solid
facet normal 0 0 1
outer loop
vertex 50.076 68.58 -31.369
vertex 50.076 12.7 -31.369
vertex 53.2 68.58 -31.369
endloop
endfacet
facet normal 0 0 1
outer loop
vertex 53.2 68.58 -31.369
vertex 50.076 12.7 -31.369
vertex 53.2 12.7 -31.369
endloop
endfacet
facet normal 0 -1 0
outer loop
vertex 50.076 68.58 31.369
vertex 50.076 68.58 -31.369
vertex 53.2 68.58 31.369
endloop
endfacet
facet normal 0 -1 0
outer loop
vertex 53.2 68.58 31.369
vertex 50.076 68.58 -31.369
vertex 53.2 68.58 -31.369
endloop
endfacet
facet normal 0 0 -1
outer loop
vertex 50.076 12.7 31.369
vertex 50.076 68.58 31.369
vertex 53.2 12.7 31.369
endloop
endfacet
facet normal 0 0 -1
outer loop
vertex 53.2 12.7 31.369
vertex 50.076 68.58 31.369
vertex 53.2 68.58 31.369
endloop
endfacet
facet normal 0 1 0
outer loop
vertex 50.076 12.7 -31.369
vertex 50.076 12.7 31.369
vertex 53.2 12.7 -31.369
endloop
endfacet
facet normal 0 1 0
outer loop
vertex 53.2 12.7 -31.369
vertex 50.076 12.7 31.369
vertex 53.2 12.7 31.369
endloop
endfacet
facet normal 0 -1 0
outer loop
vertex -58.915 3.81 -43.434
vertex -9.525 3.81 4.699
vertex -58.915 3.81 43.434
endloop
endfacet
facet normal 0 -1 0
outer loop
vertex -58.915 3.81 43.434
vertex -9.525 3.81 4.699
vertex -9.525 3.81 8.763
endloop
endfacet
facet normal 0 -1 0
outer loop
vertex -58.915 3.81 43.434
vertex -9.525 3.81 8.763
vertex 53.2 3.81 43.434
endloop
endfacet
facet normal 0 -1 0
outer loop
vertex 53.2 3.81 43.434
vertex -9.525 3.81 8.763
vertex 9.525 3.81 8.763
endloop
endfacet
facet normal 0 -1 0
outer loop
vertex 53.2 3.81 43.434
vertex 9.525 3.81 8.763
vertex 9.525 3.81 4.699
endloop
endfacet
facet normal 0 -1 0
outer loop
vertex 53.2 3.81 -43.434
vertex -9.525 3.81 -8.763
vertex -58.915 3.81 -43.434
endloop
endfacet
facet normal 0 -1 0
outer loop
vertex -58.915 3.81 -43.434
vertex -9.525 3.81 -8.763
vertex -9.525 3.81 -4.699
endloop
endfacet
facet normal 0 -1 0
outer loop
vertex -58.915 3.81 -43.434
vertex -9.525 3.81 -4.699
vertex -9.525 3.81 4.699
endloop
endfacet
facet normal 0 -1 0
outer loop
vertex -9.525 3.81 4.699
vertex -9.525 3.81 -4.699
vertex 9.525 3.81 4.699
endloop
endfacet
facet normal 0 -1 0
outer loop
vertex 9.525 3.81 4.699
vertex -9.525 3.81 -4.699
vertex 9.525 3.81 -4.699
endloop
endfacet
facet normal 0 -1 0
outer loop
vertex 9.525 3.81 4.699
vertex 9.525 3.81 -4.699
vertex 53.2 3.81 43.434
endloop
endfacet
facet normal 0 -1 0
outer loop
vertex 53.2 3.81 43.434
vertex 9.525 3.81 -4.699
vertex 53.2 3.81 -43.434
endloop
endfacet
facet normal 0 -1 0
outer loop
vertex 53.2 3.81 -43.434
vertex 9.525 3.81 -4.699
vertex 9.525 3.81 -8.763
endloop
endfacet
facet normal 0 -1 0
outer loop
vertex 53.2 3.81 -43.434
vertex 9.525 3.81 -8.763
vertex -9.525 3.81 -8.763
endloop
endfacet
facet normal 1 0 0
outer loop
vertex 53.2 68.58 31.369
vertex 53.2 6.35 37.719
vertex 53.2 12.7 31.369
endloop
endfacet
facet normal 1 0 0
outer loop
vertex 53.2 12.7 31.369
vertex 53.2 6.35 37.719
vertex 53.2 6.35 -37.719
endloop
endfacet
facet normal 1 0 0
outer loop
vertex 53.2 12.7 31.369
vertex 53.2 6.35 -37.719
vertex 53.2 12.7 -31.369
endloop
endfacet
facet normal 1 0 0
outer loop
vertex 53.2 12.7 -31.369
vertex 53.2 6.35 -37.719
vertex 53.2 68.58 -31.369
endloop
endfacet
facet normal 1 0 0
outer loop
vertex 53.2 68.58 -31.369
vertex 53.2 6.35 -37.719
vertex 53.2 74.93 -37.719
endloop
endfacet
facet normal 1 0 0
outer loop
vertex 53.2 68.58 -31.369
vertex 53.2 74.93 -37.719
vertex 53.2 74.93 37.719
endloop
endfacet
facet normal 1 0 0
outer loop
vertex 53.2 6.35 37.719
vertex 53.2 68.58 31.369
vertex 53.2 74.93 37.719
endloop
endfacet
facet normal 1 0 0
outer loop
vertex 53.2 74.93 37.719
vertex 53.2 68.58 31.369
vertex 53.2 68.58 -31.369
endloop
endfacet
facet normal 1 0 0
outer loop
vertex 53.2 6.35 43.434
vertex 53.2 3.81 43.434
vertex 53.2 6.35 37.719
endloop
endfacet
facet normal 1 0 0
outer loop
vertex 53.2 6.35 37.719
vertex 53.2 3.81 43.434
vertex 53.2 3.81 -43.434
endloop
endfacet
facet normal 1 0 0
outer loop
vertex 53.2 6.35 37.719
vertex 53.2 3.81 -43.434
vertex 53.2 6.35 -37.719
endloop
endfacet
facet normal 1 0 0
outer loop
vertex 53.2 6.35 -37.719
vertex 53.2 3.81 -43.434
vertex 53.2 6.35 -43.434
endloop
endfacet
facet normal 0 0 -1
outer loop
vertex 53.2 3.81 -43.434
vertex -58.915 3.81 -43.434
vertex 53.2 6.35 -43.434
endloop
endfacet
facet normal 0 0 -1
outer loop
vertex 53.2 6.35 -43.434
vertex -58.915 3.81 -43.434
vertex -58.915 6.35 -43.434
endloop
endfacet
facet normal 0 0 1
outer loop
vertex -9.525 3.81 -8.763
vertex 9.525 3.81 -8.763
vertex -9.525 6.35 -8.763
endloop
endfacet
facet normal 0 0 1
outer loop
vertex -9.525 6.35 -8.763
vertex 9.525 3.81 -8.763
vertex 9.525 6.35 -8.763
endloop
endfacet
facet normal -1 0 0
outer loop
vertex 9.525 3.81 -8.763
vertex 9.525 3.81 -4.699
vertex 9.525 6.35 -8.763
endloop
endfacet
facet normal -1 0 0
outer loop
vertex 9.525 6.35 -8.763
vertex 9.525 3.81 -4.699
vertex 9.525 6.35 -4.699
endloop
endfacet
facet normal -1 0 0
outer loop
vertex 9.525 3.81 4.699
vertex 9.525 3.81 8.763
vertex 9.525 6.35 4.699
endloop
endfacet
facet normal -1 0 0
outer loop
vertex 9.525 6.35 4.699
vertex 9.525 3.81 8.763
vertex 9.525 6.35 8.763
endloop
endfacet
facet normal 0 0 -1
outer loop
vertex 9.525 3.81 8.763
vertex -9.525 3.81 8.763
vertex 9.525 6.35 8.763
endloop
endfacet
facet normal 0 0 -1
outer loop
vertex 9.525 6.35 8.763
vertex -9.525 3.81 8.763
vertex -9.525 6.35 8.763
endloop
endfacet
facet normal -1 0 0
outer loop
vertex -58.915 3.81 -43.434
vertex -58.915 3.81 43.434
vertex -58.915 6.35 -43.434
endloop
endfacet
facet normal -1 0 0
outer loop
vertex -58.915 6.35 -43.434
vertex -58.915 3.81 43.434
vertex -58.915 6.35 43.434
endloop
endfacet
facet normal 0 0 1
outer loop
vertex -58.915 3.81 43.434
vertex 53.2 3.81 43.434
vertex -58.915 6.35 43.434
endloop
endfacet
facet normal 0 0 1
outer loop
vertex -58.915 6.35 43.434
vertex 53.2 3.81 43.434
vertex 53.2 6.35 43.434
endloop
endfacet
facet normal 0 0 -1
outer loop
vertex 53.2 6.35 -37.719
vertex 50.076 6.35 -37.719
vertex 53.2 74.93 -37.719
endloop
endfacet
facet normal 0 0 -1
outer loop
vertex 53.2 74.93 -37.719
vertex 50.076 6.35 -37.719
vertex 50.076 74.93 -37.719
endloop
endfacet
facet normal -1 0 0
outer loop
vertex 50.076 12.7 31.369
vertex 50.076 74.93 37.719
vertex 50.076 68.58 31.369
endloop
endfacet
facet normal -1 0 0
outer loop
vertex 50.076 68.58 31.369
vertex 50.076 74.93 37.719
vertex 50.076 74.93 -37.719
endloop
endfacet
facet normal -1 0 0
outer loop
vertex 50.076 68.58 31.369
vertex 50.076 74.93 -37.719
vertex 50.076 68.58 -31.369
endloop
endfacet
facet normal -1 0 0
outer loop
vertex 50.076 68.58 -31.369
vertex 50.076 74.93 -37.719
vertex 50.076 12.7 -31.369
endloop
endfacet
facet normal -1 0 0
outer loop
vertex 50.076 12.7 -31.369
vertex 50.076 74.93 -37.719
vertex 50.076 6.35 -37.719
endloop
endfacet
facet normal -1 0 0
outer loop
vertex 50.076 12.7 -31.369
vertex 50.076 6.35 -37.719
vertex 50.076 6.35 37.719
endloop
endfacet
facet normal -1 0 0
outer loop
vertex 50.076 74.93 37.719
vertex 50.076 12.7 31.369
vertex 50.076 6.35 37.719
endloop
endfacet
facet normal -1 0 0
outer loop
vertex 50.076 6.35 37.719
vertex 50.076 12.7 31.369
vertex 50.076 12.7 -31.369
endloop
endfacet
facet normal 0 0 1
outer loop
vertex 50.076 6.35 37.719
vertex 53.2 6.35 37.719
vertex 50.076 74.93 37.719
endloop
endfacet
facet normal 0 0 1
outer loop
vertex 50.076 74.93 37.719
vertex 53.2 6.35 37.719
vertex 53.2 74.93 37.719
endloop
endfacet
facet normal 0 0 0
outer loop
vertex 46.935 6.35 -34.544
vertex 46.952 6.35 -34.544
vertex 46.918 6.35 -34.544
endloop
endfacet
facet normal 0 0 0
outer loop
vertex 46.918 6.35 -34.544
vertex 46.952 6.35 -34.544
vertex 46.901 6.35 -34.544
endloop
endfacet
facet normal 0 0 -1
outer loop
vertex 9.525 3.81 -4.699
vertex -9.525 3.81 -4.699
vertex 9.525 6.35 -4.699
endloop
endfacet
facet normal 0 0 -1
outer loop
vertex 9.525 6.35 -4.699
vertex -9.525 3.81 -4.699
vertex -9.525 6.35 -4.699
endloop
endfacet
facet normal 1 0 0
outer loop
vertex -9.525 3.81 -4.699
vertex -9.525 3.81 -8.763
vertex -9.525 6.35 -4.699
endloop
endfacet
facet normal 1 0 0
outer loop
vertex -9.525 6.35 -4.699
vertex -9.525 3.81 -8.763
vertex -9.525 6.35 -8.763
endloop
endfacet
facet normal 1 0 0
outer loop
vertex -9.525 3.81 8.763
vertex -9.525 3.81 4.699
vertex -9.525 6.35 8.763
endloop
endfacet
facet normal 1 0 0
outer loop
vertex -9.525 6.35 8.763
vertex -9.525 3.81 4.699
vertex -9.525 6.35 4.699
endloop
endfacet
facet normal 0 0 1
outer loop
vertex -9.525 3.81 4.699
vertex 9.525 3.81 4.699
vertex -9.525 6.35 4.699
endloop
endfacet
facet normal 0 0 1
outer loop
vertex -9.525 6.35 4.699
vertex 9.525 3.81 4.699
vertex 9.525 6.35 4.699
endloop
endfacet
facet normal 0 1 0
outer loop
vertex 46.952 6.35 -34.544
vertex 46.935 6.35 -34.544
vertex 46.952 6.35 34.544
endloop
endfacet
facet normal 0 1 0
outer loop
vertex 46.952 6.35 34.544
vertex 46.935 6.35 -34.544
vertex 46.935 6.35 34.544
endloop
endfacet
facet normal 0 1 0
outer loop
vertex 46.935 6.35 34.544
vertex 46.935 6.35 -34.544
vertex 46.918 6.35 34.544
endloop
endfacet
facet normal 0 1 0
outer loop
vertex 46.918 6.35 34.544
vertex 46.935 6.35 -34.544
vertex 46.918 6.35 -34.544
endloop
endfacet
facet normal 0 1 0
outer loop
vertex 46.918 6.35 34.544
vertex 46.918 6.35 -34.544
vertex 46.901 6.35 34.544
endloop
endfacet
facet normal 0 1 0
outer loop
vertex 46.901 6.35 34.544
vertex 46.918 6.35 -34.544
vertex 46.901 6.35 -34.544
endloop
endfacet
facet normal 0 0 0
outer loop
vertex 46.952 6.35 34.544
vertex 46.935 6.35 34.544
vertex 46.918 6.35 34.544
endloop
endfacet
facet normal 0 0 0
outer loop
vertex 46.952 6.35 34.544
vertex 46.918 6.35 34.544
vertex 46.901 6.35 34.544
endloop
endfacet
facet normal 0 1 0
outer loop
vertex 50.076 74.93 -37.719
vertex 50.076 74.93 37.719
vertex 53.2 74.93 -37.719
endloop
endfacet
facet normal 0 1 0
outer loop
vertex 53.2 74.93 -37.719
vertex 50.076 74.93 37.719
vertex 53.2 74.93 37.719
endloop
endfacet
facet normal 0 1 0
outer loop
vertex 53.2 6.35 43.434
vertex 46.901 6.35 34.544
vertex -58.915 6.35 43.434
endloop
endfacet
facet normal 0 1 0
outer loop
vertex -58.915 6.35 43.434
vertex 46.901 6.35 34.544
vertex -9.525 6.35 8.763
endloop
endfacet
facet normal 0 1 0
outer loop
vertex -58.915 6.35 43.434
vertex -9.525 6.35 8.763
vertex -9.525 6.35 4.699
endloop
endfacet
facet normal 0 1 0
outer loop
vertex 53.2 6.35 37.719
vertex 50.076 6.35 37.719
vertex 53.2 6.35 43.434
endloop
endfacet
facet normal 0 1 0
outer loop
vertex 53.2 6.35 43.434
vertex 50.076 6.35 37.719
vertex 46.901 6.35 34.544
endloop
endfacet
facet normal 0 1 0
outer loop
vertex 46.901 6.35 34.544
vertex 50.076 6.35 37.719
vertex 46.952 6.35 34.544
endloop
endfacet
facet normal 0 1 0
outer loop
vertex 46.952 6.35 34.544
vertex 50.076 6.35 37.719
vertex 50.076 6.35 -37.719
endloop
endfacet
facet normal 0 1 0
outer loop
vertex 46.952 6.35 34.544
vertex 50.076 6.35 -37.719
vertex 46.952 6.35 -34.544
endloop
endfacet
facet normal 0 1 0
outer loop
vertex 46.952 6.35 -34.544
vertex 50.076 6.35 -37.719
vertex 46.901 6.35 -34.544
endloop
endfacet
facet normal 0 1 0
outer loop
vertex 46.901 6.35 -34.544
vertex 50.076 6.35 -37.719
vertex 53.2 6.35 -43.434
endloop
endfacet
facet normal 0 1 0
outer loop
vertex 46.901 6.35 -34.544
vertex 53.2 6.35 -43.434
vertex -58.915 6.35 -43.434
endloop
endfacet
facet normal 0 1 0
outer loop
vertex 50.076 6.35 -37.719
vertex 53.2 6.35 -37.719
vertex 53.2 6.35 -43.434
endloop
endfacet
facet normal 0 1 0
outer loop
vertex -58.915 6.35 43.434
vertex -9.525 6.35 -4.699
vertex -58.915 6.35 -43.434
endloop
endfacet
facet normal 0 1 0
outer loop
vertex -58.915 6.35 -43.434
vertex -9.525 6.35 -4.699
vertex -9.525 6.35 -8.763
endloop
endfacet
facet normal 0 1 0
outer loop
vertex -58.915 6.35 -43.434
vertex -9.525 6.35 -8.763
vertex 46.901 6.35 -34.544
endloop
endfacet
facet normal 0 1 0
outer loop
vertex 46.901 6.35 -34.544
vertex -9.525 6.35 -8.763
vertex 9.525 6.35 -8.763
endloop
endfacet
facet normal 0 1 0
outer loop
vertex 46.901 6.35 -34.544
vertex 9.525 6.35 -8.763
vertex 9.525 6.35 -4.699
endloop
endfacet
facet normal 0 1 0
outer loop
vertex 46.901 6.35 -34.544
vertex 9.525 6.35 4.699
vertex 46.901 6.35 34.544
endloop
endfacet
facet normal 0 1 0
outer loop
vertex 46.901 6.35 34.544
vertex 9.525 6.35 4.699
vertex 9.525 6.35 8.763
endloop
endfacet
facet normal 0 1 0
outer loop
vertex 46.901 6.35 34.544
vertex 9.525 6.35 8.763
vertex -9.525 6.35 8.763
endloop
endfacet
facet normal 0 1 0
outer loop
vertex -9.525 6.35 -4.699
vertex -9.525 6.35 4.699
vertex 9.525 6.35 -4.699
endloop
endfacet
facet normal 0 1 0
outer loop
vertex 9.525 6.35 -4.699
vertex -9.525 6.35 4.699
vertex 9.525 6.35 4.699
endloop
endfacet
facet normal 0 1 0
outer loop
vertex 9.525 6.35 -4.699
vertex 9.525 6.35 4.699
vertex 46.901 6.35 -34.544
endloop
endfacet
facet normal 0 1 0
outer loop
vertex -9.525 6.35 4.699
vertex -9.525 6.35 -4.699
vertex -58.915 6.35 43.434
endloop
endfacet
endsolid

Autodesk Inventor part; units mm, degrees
ref_plane "YZ Plane" through (0, 0, 0) normal (1, 0, 0) x (0, 1, 0)
ref_plane "XZ Plane" through (0, 0, 0) normal (0, 1, 0) x (-1, 0, 0)
ref_plane "XY Plane" through (0, 0, 0) normal (0, 0, 1) x (1, 0, 0)
sketch "Sketch1" plane through (0, 0, 0) normal (0, 1, 0) x (-1, 0, 0)
  line L0 (53.2003, -37.719) -> (-53.2003, -37.719)
  line L1 (-53.2003, -37.719) -> (-53.2003, 37.719)
  line L2 (-53.2003, 37.719) -> (53.2003, 37.719)
  line L3 (53.2003, 37.719) -> (53.2003, -37.719)
  line L4 (53.2003, -37.719) -> (-53.2003, 37.719) construction
  line L5 (-53.2003, -37.719) -> (53.2003, 37.719) construction
  point P0 (0, 0)
  dimension "d0" = 106.4006
  dimension "d1" = 75.438
extrude "Extrusion1" add sketch "Sketch1" along normal blind 6.35
sketch "Sketch2" plane through (0, 6.35, 0) normal (0, 1, 0) x (1, 0, 0)
  line L0 (53.2003, -37.719) -> (53.2003, 37.719) projected
  line L1 (53.2003, -37.719) -> (53.2003, -34.544)
  line L2 (53.2003, -34.544) -> (50.0761, -34.544)
  line L3 (53.2003, 37.719) -> (53.2003, 34.544)
  line L4 (53.2003, 34.544) -> (50.0761, 34.544)
  line L5 (50.0761, 34.544) -> (50.0761, -34.544)
  line L6 (53.2003, -34.544) -> (53.2003, 34.544)
  point P0 (0, 0)
  dimension "d4" = 3.175
  dimension "d5" = 3.1242
  dimension "d6" = 3.175
extrude "Extrusion2" add sketch "Sketch2" along normal blind 68.58
fillet "Fillet1" radius 3.175 1 edges at (50.0761, 6.35, 0)
sketch "Sketch3" plane through (0, 0, 0) normal (0, -1, 0) x (1, 0, 0)
  line L0 (-9.525, 8.763) -> (9.525, 8.763)
  line L1 (9.525, 8.763) -> (9.525, -8.763)
  line L2 (9.525, -8.763) -> (-9.525, -8.763)
  line L3 (-9.525, -8.763) -> (-9.525, 8.763)
  line L4 (-9.525, 8.763) -> (9.525, -8.763) construction
  line L5 (9.525, 8.763) -> (-9.525, -8.763) construction
  line L6 (9.525, -8.763) -> (-9.525, -8.763)
  line L7 (-9.525, -8.763) -> (-9.525, -4.699)
  line L8 (-9.525, -4.699) -> (9.525, -4.699)
  line L9 (9.525, -4.699) -> (9.525, -8.763)
  line L10 (9.525, 8.763) -> (-9.525, 8.763)
  line L11 (-9.525, 8.763) -> (-9.525, 4.699)
  line L12 (-9.525, 4.699) -> (9.525, 4.699)
  line L13 (9.525, 4.699) -> (9.525, 8.763)
  point P0 (0, 0)
  dimension "d10" = 19.05
  dimension "d11" = 17.526
  dimension "d12" = 4.064
  dimension "d13" = 4.064
extrude "Extrusion3" cut sketch "Sketch3" against normal blind 68.58 contours L0 L1 L12 L3 | L8 L1 L2 L3
sketch "Sketch4" plane through (0, 0, 0) normal (0, -1, 0) x (1, 0, 0)
  point P0 (0, 0)
sketch "Sketch5" plane through (0, 0, 0) normal (0, -1, 0) x (1, 0, 0)
  point P0 (0, 0)
sketch "Sketch6" plane through (53.2003, 0, -37.719) normal (0, 0, -1) x (-1, 0, 0)
  line L0 (106.4006, 0) -> (0, 0) projected
  line L1 (0, 6.35) -> (106.4006, 6.35) projected
  line L2 (106.4006, 0) -> (0, 0)
  line L3 (0, 0) -> (0, 6.35)
  line L4 (0, 6.35) -> (106.4006, 6.35)
  line L5 (106.4006, 6.35) -> (106.4006, 0)
  point P0 (53.2003, 0)
sketch "Sketch7" plane through (0, 6.35, 0) normal (0, 1, 0) x (1, 0, 0)
  line L0 (53.2003, 34.544) -> (53.2003, 37.719) projected
  line L1 (46.9519, -37.719) -> (53.2003, -37.719)
  line L2 (53.2003, -37.719) -> (53.2003, 37.719)
  line L3 (53.2003, 37.719) -> (46.9519, 37.719)
  line L4 (46.9519, 37.719) -> (46.9519, -37.719)
  line L5 (50.0761, 34.544) -> (50.0761, -34.544) projected
  line L6 (46.9519, -37.719) -> (53.2003, 37.719) construction
  line L7 (53.2003, -37.719) -> (46.9519, 37.719) construction
  point P0 (0, 0)
  point P1 (50.0761, 0)
extrude "Extrusion4" add sketch "Sketch7" along normal blind 68.58
sketch "Sketch8" plane through (0, 74.93, 0) normal (0, 1, 0) x (1, 0, 0)
  line L0 (53.2003, -37.719) -> (53.2003, 37.719) projected
  line L1 (53.2003, 37.719) -> (46.9519, 37.719) projected
  line L2 (53.2003, -37.719) -> (50.0761, -37.719)
  line L3 (50.0761, -37.719) -> (50.0761, 37.719)
  line L4 (50.0761, 37.719) -> (53.2003, 37.719)
  line L5 (53.2003, 37.719) -> (53.2003, -37.719)
  line L6 (46.9519, -37.719) -> (53.2003, -37.719) projected
  line L7 (50.0761, 37.719) -> (46.9519, 37.719)
  line L8 (46.9519, 37.719) -> (46.9519, -37.719)
  line L9 (46.9519, -37.719) -> (50.0761, -37.719)
  line L10 (50.0761, -37.719) -> (50.0761, 37.719)
  point P0 (0, 0)
extrude "Extrusion5" cut sketch "Sketch8" against normal blind 68.58 contours L6 L8 L1 L3
sketch "Sketch9" plane through (53.2003, 0, -37.719) normal (0, 0, -1) x (-1, 0, 0)
  line L0 (3.1242, 6.35) -> (106.4006, 6.35) projected
  line L1 (106.4006, 6.35) -> (0, 6.35)
  line L2 (0, 6.35) -> (0, 0)
  line L3 (0, 0) -> (106.4006, 0)
  line L4 (106.4006, 0) -> (106.4006, 6.35)
  point P0 (53.2003, 0)
extrude "Extrusion6" add sketch "Sketch9" along normal blind 5.715
sketch "Sketch10" plane through (-53.2003, 0, 37.719) normal (0, 0, 1) x (1, 0, 0)
  line L0 (0, 6.35) -> (106.4006, 6.35) projected
  line L1 (106.4006, 0) -> (106.4006, 74.93) projected
  line L2 (0, 6.35) -> (106.4006, 6.35)
  line L3 (106.4006, 6.35) -> (106.4006, 0)
  line L4 (106.4006, 0) -> (0, 0)
  line L5 (0, 0) -> (0, 6.35)
  point P0 (53.2003, 0)
extrude "Extrusion7" add sketch "Sketch10" along normal blind 5.715
sketch "Sketch11" plane through (-53.2003, 0, -43.434) normal (-1, 0, 0) x (0, 0, 1)
  line L0 (0, 0) -> (0, 6.35) projected
  line L1 (86.868, 0) -> (0, 0) projected
  line L2 (0, 6.35) -> (86.868, 6.35)
  line L3 (86.868, 6.35) -> (86.868, 0)
  line L4 (86.868, 0) -> (0, 0)
  line L5 (0, 0) -> (0, 6.35)
  point P0 (43.434, 0)
extrude "Extrusion8" add sketch "Sketch11" along normal blind 5.715
sketch "Sketch12" plane through (53.2003, 0, -43.434) normal (0, 0, -1) x (-1, 0, 0)
  line L0 (0, 6.35) -> (112.1156, 6.35) projected
  line L1 (0, 6.35) -> (0, 3.81)
  line L2 (0, 0) -> (112.1156, 0) projected
  line L3 (0, 3.81) -> (0, 6.35)
  point P0 (53.2003, 0)
  dimension "d26" = 2.54
sketch "Sketch13" plane through (0, 0, 0) normal (0, -1, 0) x (1, 0, 0)
  line L0 (-61.9125, -50.8) -> (61.9125, -50.8)
  line L1 (61.9125, -50.8) -> (61.9125, 50.8)
  line L2 (61.9125, 50.8) -> (-61.9125, 50.8)
  line L3 (-61.9125, 50.8) -> (-61.9125, -50.8)
  line L4 (-61.9125, -50.8) -> (61.9125, 50.8) construction
  line L5 (61.9125, -50.8) -> (-61.9125, 50.8) construction
  point P0 (0, 0)
extrude "Extrusion9" cut sketch "Sketch13" against normal blind 3.81
sketch "Sketch14" plane through (53.2003, 6.35, -37.719) normal (1, 0, 0) x (0, 0, -1)
  line L0 (0, 0) -> (0, 68.58) projected
  line L1 (0, 34.29) -> (-6.35, 34.29)
  line L2 (-6.35, 34.29) -> (0, 34.29)
  line L3 (-33.02, -2.54) -> (-33.02, 0) projected
  line L4 (-33.02, 0) -> (-33.02, 6.35)
  line L5 (-33.02, 6.35) -> (-33.02, 0)
  line L6 (-33.02, 0) -> (-33.02, 6.35)
  line L7 (-69.088, 62.23) -> (-6.35, 62.23)
  line L8 (-6.35, 62.23) -> (-6.35, 6.35)
  line L9 (-6.35, 6.35) -> (-69.088, 6.35)
  line L10 (-69.088, 6.35) -> (-69.088, 62.23)
  line L11 (-69.088, 62.23) -> (-6.35, 6.35) construction
  line L12 (-6.35, 62.23) -> (-69.088, 6.35) construction
  point P0 (-37.719, -6.35)
  point P1 (-37.719, 34.29)
extrude "Extrusion10" cut sketch "Sketch14" against normal blind 381
properties part number "Boxpt2"
